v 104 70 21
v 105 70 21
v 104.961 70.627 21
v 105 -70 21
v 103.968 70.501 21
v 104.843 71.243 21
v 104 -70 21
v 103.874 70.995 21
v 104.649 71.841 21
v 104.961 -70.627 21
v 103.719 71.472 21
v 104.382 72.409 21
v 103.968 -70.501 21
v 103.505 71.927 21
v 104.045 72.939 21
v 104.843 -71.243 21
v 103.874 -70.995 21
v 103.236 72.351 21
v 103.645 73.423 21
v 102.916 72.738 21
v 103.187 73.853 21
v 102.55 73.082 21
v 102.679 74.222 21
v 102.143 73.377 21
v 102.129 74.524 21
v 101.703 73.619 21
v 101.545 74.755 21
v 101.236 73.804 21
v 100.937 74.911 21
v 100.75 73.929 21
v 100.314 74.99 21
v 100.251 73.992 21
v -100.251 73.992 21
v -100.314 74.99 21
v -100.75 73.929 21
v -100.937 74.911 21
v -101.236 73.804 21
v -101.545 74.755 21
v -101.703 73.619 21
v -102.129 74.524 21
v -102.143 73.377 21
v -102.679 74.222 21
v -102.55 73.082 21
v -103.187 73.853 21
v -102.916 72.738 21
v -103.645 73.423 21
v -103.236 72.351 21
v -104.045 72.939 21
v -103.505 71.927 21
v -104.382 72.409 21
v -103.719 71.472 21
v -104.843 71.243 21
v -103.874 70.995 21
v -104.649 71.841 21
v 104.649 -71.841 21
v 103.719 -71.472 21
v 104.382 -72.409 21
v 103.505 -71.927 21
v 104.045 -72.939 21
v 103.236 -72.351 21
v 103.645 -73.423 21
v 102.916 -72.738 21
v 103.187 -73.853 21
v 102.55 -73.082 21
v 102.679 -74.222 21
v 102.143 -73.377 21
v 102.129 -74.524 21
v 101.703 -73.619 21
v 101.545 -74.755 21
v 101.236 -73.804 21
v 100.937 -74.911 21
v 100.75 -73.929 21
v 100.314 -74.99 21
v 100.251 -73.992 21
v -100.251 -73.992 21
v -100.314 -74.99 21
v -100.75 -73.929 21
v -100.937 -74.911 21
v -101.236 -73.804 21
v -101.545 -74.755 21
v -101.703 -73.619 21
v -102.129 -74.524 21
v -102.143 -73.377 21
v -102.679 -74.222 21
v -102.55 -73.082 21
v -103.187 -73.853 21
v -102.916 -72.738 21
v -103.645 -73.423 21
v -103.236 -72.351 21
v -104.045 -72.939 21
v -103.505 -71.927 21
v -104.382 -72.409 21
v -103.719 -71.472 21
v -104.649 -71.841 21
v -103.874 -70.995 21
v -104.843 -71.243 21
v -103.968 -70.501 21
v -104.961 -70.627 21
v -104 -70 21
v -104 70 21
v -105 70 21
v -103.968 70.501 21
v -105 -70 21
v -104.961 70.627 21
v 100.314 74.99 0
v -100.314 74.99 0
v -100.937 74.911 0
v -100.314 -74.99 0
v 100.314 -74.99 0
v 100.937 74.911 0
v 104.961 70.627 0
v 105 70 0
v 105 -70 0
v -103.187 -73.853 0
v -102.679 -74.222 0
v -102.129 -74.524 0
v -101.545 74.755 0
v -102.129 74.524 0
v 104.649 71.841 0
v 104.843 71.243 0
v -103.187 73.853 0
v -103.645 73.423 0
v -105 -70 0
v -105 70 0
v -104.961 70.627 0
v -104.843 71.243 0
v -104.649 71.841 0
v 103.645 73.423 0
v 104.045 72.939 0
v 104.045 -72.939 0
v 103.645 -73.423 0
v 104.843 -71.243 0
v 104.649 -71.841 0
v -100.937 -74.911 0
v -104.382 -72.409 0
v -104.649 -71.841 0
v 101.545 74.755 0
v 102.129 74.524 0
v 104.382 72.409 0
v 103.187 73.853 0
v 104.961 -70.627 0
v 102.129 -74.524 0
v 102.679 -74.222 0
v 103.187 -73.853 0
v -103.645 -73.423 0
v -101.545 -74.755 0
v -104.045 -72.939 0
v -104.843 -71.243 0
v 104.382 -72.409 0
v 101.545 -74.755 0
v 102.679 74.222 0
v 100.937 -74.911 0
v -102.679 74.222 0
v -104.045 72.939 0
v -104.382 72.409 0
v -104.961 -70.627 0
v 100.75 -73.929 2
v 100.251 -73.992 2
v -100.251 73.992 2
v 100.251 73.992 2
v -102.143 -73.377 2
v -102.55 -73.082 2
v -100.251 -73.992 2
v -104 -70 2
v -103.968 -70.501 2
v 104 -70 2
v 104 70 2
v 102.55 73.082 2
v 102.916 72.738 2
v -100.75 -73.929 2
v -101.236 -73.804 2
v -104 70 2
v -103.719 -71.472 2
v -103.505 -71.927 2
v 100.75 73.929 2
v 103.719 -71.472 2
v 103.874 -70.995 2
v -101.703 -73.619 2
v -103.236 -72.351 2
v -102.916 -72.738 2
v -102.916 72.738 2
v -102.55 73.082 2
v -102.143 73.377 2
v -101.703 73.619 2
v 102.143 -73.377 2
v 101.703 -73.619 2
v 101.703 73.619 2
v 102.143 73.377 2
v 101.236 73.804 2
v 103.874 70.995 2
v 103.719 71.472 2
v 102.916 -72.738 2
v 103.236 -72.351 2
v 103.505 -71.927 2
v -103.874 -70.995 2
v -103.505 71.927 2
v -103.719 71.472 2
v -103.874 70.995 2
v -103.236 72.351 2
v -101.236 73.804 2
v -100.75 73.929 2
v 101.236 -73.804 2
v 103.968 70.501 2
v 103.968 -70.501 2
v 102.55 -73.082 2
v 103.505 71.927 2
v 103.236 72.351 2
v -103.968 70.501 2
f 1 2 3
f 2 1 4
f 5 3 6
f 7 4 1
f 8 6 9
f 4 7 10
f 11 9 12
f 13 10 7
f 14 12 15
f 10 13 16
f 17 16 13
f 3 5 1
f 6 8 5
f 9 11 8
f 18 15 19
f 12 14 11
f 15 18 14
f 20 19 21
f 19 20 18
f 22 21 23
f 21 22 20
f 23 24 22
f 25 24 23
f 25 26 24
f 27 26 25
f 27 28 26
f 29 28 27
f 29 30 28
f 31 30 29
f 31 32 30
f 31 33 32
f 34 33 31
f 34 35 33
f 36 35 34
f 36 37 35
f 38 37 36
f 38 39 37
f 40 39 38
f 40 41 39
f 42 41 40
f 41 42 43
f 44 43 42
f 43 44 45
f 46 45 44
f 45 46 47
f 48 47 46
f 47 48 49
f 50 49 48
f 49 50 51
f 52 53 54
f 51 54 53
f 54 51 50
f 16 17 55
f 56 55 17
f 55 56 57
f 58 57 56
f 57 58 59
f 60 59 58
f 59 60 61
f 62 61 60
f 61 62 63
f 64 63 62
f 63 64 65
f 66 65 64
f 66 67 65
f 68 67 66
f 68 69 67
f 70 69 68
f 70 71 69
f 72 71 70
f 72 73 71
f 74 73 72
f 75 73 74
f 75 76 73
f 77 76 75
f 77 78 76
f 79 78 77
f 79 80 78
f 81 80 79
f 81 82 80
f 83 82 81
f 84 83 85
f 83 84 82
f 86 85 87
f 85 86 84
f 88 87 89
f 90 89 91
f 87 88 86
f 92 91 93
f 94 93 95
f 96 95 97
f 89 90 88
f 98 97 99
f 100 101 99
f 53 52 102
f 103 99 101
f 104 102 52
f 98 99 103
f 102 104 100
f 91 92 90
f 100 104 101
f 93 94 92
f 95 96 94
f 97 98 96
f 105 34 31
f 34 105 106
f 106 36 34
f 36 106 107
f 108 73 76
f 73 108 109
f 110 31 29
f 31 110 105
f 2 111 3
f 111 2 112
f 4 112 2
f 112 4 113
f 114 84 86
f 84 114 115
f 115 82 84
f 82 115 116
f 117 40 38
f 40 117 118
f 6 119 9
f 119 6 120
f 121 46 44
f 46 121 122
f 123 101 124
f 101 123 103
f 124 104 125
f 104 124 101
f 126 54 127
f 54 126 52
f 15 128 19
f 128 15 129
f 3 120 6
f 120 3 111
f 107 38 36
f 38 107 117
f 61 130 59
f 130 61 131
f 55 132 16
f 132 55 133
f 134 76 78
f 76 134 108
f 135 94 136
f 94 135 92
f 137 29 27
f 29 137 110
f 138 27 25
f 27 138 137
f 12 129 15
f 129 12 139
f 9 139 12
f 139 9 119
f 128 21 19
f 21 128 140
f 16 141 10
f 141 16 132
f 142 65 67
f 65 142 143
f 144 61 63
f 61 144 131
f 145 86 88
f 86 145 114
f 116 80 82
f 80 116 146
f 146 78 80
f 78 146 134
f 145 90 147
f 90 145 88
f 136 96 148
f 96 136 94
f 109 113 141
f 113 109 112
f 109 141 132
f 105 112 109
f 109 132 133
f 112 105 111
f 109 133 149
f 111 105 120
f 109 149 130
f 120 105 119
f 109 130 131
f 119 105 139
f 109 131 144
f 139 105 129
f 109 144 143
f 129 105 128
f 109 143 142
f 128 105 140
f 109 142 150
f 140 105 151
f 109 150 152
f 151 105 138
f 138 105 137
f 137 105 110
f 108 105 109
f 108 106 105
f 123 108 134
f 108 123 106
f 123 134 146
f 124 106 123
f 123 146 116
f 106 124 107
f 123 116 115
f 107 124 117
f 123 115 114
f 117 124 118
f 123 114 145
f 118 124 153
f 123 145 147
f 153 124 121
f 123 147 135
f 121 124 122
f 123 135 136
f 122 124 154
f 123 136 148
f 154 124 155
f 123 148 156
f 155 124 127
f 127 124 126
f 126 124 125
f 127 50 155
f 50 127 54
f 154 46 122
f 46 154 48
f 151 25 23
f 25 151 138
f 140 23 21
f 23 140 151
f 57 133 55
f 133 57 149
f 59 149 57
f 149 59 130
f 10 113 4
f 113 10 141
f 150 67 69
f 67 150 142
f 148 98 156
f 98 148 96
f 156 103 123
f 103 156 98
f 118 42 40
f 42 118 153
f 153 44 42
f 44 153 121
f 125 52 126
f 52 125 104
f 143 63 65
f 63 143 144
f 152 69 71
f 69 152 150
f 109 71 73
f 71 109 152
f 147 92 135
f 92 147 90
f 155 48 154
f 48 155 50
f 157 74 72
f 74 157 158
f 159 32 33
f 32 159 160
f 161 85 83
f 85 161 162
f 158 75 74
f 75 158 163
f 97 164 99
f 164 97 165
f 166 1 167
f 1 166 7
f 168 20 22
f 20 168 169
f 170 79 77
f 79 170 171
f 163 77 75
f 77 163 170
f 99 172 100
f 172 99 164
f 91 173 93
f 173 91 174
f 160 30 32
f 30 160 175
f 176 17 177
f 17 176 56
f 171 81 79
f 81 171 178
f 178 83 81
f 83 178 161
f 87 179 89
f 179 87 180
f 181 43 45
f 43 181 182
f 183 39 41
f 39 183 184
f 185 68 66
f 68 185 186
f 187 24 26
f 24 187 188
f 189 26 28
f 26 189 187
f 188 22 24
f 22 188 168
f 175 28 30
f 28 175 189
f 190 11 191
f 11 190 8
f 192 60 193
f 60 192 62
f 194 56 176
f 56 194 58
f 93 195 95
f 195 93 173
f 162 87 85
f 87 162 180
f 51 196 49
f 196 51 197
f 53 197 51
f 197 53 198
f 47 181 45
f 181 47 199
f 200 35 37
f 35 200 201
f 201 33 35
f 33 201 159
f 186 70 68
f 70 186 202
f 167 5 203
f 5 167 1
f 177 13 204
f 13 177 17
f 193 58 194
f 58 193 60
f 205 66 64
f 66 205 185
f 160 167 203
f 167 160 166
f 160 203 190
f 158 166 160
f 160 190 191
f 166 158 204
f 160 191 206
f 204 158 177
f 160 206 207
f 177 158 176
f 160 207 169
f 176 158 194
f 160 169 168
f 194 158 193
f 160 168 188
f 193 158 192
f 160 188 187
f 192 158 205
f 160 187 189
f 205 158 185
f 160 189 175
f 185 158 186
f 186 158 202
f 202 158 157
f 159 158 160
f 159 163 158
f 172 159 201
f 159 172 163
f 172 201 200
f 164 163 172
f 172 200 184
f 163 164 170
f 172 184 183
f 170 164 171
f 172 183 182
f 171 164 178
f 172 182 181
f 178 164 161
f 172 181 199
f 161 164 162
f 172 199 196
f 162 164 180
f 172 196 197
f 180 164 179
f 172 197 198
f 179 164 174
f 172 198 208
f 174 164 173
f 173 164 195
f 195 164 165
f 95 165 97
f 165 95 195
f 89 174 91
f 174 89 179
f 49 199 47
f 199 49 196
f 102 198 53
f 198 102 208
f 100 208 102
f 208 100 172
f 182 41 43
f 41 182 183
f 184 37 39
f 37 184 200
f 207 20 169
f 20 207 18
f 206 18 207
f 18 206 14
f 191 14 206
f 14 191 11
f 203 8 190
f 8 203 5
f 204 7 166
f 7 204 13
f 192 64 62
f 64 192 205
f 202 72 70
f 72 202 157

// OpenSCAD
$fn = 50;


difference() {
	union() {
		hull() {
			translate(v = [-100.0000000000, 70.0000000000, 0]) {
				cylinder(h = 21, r = 5);
			}
			translate(v = [100.0000000000, 70.0000000000, 0]) {
				cylinder(h = 21, r = 5);
			}
			translate(v = [-100.0000000000, -70.0000000000, 0]) {
				cylinder(h = 21, r = 5);
			}
			translate(v = [100.0000000000, -70.0000000000, 0]) {
				cylinder(h = 21, r = 5);
			}
		}
	}
	union() {
		translate(v = [0, 0, 2]) {
			hull() {
				translate(v = [-100.0000000000, 70.0000000000, 0]) {
					cylinder(h = 19, r = 4);
				}
				translate(v = [100.0000000000, 70.0000000000, 0]) {
					cylinder(h = 19, r = 4);
				}
				translate(v = [-100.0000000000, -70.0000000000, 0]) {
					cylinder(h = 19, r = 4);
				}
				translate(v = [100.0000000000, -70.0000000000, 0]) {
					cylinder(h = 19, r = 4);
				}
			}
		}
	}
}
